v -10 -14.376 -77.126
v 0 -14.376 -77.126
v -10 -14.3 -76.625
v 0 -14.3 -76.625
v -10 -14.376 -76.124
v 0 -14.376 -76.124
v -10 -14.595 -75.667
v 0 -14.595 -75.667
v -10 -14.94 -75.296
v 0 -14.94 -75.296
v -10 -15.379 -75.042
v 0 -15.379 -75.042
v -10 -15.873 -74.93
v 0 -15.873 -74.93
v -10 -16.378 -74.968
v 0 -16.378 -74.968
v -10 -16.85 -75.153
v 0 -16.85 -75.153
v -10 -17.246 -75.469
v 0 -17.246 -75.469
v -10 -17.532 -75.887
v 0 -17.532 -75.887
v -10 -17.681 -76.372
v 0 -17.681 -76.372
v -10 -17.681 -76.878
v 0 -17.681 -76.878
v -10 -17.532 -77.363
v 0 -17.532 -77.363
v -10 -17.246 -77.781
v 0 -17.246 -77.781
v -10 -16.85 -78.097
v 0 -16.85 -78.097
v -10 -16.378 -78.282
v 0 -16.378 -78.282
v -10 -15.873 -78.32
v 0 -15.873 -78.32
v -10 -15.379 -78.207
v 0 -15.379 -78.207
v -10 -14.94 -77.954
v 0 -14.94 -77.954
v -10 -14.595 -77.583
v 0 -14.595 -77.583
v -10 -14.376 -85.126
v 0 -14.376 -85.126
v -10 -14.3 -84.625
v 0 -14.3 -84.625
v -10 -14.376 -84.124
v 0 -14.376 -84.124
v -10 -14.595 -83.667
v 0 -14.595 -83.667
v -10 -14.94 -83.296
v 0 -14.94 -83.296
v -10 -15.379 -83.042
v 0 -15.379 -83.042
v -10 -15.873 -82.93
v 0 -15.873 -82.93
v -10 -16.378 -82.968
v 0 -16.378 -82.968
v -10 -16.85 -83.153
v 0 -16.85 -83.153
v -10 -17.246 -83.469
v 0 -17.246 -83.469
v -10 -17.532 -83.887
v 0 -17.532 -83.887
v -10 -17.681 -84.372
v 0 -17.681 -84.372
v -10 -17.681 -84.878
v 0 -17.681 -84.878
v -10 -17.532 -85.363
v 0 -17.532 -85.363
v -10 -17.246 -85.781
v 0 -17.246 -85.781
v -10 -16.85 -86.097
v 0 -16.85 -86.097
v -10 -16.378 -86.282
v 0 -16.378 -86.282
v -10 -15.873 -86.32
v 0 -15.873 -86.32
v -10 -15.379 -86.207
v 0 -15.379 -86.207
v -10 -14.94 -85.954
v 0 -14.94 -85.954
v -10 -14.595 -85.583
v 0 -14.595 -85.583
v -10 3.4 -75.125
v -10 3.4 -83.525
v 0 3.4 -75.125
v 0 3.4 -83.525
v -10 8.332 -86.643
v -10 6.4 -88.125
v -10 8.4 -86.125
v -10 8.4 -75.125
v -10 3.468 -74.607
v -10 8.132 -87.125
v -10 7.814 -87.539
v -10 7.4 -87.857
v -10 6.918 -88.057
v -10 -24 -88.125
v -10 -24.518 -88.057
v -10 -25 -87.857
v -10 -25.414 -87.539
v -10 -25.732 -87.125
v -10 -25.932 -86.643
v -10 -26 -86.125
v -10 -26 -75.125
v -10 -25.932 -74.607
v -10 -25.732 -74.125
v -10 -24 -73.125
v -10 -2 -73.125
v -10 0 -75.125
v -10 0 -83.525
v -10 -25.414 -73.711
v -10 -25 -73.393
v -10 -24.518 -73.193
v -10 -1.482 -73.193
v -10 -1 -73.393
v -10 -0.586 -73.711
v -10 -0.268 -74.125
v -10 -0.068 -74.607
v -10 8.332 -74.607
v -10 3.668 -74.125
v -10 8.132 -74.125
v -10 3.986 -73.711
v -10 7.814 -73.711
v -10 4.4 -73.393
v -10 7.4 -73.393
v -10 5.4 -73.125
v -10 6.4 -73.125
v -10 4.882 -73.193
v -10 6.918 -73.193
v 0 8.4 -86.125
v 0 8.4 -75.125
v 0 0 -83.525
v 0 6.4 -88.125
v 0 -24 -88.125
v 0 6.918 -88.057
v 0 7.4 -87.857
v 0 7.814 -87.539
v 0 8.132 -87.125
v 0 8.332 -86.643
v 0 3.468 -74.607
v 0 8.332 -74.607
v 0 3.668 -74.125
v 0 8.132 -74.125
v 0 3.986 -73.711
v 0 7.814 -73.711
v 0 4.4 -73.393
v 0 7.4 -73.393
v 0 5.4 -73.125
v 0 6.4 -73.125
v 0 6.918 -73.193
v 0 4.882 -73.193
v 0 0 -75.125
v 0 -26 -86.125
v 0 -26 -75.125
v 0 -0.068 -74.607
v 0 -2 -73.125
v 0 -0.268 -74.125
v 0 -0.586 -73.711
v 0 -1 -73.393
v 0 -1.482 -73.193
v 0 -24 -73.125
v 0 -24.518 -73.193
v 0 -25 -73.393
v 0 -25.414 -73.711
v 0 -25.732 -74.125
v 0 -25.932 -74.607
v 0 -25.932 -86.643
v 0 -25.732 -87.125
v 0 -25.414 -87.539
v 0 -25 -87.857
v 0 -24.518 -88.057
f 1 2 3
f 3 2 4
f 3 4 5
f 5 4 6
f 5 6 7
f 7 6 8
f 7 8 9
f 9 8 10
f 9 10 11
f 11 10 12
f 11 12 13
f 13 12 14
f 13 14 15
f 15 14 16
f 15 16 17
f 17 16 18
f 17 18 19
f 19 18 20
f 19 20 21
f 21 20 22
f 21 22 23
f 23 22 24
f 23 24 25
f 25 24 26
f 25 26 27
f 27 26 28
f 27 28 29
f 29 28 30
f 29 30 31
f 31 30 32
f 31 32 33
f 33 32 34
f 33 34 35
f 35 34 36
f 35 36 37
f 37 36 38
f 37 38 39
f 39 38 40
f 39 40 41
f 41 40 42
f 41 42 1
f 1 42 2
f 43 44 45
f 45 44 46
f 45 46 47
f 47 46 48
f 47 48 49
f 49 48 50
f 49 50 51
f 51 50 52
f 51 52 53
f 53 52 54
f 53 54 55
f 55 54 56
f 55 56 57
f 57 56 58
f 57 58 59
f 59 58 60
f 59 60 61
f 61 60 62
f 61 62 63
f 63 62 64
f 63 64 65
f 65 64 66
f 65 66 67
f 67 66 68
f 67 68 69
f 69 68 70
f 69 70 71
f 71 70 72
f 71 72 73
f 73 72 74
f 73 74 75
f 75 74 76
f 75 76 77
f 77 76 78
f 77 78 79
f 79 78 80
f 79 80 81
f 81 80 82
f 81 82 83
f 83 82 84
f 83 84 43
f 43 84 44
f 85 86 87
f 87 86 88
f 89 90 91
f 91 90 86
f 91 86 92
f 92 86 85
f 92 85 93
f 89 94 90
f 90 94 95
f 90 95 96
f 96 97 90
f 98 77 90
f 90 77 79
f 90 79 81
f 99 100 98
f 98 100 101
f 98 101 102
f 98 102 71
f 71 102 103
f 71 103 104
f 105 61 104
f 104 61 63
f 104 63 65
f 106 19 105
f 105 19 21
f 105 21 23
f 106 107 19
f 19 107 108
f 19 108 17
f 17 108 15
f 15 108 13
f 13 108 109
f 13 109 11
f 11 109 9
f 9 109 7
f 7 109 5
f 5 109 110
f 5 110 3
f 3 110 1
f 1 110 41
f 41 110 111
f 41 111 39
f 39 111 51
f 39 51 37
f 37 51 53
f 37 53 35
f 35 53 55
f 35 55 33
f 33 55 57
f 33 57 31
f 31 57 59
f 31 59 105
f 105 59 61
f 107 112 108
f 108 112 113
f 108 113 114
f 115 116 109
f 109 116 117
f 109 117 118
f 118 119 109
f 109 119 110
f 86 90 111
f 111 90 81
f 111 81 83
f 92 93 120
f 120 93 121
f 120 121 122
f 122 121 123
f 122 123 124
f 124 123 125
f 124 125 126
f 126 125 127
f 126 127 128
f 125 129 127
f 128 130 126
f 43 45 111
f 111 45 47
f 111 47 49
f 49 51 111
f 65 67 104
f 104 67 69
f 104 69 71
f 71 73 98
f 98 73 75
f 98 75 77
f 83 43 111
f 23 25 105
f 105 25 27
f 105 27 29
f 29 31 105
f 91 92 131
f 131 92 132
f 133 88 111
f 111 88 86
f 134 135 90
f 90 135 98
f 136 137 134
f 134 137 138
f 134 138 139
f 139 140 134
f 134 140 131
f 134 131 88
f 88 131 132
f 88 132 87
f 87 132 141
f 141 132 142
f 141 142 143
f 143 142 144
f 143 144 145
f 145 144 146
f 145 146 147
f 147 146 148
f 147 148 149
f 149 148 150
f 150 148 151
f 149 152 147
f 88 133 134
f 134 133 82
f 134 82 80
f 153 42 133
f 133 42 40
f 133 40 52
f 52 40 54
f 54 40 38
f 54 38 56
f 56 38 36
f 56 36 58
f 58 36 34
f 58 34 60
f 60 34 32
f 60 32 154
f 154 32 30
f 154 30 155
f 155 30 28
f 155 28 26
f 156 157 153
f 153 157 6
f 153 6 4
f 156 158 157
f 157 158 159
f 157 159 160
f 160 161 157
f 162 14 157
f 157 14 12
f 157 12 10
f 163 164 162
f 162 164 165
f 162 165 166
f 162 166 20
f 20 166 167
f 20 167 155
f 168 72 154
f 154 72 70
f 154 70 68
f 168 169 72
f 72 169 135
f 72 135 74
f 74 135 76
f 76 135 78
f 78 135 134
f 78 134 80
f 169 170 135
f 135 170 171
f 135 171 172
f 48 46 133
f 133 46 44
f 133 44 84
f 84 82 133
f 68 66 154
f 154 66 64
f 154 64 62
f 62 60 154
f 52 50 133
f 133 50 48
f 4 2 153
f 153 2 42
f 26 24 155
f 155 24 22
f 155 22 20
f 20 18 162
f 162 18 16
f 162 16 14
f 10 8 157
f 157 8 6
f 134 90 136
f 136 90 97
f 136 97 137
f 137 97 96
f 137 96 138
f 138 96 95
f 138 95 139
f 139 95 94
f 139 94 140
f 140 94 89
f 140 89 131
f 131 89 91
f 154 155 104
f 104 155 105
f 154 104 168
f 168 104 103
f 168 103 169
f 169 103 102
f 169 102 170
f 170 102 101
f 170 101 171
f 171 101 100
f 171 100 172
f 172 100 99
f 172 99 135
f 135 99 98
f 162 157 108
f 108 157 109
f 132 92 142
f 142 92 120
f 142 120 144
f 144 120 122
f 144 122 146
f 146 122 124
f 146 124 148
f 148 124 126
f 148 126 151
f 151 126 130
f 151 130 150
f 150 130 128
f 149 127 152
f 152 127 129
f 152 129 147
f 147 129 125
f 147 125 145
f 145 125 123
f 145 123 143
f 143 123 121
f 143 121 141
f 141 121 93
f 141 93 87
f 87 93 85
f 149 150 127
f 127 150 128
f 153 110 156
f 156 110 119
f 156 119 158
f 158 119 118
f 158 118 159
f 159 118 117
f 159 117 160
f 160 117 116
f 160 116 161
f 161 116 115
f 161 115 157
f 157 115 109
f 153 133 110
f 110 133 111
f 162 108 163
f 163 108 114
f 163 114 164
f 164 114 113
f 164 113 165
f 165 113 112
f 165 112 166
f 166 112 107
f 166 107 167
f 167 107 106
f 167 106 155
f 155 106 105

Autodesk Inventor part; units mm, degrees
ref_plane "YZ Plane" through (0, 0, 0) normal (1, 0, 0) x (0, 1, 0)
ref_plane "XZ Plane" through (0, 0, 0) normal (0, 1, 0) x (-1, 0, 0)
ref_plane "XY Plane" through (0, 0, 0) normal (0, 0, 1) x (1, 0, 0)
sketch "スケッチ1" plane through (0, 0, 0) normal (1, 0, 0) x (0, 1, 0)
  line L0 (0, 0) -> (3.4, 0)
  line L1 (3.4, 0) -> (3.4, -83.525)
  line L2 (3.4, -83.525) -> (0, -83.525)
  line L3 (0, -83.525) -> (0, 0)
  line L4 (-6, 0) -> (-26, 0)
  line L5 (-26, 0) -> (-26, -134.3533)
  line L6 (-26, -134.3533) -> (-6, -134.3533)
  line L7 (-6, -134.3533) -> (-6, 0)
  line L8 (3.4, -83.525) -> (8.4, -83.525)
  line L9 (8.4, -83.525) -> (8.4, -73.125)
  line L10 (8.4, -73.125) -> (3.4, -73.125)
  line L11 (3.4, -73.125) -> (3.4, -83.525)
  line L12 (0, -73.125) -> (-26, -73.125)
  line L13 (-26, -73.125) -> (-26, -88.125)
  line L14 (-26, -88.125) -> (0, -88.125)
  line L15 (0, -88.125) -> (0, -73.125)
  line L16 (8.4, -83.525) -> (0, -83.525)
  line L17 (0, -83.525) -> (0, -88.125)
  line L18 (0, -88.125) -> (8.4, -88.125)
  line L19 (8.4, -88.125) -> (8.4, -83.525)
  circle A0 centre (-16, -76.625) radius 1.7
  circle A1 centre (-16, -84.625) radius 1.7
  point P0 (4.2, -88.125)
  point P1 (5.9, -83.525)
  point P2 (-26, -80.625)
  point P3 (3.4, -73.125)
  point P4 (-26, -73.125)
  dimension "d0" = 3.4
  dimension "d1" = 20
  dimension "d2" = 6
  dimension "d3" = 5
  dimension "d4" = 10.4
  dimension "d5" = 4.6
  dimension "d6" = 3.4
  dimension "d7" = 3.4
  dimension "d8" = 10
  dimension "d9" = 10
  dimension "d10" = 8
  dimension "d11" = 3.5
  dimension "d14" = 0
extrude "押し出し1" add sketch "スケッチ1" against normal blind 10 contours L3 L15 L14 L7 L12 | L10 L9 L8 L1 | L2 L8 L19 L18 L15 | L7 L14 L5 L12
fillet "フィレット1" radius 2 6 edges at (-5, 8.4, -73.125) (-5, 3.4, -73.125) (-5, 0, -73.125) (-5, -26, -73.125) (-5, -26, -88.125) (-5, 8.4, -88.125)
equation "\"d9\" = d8"
properties part number "base_weel-v2-3DP-C-F-2" material "ABS プラスチック"
